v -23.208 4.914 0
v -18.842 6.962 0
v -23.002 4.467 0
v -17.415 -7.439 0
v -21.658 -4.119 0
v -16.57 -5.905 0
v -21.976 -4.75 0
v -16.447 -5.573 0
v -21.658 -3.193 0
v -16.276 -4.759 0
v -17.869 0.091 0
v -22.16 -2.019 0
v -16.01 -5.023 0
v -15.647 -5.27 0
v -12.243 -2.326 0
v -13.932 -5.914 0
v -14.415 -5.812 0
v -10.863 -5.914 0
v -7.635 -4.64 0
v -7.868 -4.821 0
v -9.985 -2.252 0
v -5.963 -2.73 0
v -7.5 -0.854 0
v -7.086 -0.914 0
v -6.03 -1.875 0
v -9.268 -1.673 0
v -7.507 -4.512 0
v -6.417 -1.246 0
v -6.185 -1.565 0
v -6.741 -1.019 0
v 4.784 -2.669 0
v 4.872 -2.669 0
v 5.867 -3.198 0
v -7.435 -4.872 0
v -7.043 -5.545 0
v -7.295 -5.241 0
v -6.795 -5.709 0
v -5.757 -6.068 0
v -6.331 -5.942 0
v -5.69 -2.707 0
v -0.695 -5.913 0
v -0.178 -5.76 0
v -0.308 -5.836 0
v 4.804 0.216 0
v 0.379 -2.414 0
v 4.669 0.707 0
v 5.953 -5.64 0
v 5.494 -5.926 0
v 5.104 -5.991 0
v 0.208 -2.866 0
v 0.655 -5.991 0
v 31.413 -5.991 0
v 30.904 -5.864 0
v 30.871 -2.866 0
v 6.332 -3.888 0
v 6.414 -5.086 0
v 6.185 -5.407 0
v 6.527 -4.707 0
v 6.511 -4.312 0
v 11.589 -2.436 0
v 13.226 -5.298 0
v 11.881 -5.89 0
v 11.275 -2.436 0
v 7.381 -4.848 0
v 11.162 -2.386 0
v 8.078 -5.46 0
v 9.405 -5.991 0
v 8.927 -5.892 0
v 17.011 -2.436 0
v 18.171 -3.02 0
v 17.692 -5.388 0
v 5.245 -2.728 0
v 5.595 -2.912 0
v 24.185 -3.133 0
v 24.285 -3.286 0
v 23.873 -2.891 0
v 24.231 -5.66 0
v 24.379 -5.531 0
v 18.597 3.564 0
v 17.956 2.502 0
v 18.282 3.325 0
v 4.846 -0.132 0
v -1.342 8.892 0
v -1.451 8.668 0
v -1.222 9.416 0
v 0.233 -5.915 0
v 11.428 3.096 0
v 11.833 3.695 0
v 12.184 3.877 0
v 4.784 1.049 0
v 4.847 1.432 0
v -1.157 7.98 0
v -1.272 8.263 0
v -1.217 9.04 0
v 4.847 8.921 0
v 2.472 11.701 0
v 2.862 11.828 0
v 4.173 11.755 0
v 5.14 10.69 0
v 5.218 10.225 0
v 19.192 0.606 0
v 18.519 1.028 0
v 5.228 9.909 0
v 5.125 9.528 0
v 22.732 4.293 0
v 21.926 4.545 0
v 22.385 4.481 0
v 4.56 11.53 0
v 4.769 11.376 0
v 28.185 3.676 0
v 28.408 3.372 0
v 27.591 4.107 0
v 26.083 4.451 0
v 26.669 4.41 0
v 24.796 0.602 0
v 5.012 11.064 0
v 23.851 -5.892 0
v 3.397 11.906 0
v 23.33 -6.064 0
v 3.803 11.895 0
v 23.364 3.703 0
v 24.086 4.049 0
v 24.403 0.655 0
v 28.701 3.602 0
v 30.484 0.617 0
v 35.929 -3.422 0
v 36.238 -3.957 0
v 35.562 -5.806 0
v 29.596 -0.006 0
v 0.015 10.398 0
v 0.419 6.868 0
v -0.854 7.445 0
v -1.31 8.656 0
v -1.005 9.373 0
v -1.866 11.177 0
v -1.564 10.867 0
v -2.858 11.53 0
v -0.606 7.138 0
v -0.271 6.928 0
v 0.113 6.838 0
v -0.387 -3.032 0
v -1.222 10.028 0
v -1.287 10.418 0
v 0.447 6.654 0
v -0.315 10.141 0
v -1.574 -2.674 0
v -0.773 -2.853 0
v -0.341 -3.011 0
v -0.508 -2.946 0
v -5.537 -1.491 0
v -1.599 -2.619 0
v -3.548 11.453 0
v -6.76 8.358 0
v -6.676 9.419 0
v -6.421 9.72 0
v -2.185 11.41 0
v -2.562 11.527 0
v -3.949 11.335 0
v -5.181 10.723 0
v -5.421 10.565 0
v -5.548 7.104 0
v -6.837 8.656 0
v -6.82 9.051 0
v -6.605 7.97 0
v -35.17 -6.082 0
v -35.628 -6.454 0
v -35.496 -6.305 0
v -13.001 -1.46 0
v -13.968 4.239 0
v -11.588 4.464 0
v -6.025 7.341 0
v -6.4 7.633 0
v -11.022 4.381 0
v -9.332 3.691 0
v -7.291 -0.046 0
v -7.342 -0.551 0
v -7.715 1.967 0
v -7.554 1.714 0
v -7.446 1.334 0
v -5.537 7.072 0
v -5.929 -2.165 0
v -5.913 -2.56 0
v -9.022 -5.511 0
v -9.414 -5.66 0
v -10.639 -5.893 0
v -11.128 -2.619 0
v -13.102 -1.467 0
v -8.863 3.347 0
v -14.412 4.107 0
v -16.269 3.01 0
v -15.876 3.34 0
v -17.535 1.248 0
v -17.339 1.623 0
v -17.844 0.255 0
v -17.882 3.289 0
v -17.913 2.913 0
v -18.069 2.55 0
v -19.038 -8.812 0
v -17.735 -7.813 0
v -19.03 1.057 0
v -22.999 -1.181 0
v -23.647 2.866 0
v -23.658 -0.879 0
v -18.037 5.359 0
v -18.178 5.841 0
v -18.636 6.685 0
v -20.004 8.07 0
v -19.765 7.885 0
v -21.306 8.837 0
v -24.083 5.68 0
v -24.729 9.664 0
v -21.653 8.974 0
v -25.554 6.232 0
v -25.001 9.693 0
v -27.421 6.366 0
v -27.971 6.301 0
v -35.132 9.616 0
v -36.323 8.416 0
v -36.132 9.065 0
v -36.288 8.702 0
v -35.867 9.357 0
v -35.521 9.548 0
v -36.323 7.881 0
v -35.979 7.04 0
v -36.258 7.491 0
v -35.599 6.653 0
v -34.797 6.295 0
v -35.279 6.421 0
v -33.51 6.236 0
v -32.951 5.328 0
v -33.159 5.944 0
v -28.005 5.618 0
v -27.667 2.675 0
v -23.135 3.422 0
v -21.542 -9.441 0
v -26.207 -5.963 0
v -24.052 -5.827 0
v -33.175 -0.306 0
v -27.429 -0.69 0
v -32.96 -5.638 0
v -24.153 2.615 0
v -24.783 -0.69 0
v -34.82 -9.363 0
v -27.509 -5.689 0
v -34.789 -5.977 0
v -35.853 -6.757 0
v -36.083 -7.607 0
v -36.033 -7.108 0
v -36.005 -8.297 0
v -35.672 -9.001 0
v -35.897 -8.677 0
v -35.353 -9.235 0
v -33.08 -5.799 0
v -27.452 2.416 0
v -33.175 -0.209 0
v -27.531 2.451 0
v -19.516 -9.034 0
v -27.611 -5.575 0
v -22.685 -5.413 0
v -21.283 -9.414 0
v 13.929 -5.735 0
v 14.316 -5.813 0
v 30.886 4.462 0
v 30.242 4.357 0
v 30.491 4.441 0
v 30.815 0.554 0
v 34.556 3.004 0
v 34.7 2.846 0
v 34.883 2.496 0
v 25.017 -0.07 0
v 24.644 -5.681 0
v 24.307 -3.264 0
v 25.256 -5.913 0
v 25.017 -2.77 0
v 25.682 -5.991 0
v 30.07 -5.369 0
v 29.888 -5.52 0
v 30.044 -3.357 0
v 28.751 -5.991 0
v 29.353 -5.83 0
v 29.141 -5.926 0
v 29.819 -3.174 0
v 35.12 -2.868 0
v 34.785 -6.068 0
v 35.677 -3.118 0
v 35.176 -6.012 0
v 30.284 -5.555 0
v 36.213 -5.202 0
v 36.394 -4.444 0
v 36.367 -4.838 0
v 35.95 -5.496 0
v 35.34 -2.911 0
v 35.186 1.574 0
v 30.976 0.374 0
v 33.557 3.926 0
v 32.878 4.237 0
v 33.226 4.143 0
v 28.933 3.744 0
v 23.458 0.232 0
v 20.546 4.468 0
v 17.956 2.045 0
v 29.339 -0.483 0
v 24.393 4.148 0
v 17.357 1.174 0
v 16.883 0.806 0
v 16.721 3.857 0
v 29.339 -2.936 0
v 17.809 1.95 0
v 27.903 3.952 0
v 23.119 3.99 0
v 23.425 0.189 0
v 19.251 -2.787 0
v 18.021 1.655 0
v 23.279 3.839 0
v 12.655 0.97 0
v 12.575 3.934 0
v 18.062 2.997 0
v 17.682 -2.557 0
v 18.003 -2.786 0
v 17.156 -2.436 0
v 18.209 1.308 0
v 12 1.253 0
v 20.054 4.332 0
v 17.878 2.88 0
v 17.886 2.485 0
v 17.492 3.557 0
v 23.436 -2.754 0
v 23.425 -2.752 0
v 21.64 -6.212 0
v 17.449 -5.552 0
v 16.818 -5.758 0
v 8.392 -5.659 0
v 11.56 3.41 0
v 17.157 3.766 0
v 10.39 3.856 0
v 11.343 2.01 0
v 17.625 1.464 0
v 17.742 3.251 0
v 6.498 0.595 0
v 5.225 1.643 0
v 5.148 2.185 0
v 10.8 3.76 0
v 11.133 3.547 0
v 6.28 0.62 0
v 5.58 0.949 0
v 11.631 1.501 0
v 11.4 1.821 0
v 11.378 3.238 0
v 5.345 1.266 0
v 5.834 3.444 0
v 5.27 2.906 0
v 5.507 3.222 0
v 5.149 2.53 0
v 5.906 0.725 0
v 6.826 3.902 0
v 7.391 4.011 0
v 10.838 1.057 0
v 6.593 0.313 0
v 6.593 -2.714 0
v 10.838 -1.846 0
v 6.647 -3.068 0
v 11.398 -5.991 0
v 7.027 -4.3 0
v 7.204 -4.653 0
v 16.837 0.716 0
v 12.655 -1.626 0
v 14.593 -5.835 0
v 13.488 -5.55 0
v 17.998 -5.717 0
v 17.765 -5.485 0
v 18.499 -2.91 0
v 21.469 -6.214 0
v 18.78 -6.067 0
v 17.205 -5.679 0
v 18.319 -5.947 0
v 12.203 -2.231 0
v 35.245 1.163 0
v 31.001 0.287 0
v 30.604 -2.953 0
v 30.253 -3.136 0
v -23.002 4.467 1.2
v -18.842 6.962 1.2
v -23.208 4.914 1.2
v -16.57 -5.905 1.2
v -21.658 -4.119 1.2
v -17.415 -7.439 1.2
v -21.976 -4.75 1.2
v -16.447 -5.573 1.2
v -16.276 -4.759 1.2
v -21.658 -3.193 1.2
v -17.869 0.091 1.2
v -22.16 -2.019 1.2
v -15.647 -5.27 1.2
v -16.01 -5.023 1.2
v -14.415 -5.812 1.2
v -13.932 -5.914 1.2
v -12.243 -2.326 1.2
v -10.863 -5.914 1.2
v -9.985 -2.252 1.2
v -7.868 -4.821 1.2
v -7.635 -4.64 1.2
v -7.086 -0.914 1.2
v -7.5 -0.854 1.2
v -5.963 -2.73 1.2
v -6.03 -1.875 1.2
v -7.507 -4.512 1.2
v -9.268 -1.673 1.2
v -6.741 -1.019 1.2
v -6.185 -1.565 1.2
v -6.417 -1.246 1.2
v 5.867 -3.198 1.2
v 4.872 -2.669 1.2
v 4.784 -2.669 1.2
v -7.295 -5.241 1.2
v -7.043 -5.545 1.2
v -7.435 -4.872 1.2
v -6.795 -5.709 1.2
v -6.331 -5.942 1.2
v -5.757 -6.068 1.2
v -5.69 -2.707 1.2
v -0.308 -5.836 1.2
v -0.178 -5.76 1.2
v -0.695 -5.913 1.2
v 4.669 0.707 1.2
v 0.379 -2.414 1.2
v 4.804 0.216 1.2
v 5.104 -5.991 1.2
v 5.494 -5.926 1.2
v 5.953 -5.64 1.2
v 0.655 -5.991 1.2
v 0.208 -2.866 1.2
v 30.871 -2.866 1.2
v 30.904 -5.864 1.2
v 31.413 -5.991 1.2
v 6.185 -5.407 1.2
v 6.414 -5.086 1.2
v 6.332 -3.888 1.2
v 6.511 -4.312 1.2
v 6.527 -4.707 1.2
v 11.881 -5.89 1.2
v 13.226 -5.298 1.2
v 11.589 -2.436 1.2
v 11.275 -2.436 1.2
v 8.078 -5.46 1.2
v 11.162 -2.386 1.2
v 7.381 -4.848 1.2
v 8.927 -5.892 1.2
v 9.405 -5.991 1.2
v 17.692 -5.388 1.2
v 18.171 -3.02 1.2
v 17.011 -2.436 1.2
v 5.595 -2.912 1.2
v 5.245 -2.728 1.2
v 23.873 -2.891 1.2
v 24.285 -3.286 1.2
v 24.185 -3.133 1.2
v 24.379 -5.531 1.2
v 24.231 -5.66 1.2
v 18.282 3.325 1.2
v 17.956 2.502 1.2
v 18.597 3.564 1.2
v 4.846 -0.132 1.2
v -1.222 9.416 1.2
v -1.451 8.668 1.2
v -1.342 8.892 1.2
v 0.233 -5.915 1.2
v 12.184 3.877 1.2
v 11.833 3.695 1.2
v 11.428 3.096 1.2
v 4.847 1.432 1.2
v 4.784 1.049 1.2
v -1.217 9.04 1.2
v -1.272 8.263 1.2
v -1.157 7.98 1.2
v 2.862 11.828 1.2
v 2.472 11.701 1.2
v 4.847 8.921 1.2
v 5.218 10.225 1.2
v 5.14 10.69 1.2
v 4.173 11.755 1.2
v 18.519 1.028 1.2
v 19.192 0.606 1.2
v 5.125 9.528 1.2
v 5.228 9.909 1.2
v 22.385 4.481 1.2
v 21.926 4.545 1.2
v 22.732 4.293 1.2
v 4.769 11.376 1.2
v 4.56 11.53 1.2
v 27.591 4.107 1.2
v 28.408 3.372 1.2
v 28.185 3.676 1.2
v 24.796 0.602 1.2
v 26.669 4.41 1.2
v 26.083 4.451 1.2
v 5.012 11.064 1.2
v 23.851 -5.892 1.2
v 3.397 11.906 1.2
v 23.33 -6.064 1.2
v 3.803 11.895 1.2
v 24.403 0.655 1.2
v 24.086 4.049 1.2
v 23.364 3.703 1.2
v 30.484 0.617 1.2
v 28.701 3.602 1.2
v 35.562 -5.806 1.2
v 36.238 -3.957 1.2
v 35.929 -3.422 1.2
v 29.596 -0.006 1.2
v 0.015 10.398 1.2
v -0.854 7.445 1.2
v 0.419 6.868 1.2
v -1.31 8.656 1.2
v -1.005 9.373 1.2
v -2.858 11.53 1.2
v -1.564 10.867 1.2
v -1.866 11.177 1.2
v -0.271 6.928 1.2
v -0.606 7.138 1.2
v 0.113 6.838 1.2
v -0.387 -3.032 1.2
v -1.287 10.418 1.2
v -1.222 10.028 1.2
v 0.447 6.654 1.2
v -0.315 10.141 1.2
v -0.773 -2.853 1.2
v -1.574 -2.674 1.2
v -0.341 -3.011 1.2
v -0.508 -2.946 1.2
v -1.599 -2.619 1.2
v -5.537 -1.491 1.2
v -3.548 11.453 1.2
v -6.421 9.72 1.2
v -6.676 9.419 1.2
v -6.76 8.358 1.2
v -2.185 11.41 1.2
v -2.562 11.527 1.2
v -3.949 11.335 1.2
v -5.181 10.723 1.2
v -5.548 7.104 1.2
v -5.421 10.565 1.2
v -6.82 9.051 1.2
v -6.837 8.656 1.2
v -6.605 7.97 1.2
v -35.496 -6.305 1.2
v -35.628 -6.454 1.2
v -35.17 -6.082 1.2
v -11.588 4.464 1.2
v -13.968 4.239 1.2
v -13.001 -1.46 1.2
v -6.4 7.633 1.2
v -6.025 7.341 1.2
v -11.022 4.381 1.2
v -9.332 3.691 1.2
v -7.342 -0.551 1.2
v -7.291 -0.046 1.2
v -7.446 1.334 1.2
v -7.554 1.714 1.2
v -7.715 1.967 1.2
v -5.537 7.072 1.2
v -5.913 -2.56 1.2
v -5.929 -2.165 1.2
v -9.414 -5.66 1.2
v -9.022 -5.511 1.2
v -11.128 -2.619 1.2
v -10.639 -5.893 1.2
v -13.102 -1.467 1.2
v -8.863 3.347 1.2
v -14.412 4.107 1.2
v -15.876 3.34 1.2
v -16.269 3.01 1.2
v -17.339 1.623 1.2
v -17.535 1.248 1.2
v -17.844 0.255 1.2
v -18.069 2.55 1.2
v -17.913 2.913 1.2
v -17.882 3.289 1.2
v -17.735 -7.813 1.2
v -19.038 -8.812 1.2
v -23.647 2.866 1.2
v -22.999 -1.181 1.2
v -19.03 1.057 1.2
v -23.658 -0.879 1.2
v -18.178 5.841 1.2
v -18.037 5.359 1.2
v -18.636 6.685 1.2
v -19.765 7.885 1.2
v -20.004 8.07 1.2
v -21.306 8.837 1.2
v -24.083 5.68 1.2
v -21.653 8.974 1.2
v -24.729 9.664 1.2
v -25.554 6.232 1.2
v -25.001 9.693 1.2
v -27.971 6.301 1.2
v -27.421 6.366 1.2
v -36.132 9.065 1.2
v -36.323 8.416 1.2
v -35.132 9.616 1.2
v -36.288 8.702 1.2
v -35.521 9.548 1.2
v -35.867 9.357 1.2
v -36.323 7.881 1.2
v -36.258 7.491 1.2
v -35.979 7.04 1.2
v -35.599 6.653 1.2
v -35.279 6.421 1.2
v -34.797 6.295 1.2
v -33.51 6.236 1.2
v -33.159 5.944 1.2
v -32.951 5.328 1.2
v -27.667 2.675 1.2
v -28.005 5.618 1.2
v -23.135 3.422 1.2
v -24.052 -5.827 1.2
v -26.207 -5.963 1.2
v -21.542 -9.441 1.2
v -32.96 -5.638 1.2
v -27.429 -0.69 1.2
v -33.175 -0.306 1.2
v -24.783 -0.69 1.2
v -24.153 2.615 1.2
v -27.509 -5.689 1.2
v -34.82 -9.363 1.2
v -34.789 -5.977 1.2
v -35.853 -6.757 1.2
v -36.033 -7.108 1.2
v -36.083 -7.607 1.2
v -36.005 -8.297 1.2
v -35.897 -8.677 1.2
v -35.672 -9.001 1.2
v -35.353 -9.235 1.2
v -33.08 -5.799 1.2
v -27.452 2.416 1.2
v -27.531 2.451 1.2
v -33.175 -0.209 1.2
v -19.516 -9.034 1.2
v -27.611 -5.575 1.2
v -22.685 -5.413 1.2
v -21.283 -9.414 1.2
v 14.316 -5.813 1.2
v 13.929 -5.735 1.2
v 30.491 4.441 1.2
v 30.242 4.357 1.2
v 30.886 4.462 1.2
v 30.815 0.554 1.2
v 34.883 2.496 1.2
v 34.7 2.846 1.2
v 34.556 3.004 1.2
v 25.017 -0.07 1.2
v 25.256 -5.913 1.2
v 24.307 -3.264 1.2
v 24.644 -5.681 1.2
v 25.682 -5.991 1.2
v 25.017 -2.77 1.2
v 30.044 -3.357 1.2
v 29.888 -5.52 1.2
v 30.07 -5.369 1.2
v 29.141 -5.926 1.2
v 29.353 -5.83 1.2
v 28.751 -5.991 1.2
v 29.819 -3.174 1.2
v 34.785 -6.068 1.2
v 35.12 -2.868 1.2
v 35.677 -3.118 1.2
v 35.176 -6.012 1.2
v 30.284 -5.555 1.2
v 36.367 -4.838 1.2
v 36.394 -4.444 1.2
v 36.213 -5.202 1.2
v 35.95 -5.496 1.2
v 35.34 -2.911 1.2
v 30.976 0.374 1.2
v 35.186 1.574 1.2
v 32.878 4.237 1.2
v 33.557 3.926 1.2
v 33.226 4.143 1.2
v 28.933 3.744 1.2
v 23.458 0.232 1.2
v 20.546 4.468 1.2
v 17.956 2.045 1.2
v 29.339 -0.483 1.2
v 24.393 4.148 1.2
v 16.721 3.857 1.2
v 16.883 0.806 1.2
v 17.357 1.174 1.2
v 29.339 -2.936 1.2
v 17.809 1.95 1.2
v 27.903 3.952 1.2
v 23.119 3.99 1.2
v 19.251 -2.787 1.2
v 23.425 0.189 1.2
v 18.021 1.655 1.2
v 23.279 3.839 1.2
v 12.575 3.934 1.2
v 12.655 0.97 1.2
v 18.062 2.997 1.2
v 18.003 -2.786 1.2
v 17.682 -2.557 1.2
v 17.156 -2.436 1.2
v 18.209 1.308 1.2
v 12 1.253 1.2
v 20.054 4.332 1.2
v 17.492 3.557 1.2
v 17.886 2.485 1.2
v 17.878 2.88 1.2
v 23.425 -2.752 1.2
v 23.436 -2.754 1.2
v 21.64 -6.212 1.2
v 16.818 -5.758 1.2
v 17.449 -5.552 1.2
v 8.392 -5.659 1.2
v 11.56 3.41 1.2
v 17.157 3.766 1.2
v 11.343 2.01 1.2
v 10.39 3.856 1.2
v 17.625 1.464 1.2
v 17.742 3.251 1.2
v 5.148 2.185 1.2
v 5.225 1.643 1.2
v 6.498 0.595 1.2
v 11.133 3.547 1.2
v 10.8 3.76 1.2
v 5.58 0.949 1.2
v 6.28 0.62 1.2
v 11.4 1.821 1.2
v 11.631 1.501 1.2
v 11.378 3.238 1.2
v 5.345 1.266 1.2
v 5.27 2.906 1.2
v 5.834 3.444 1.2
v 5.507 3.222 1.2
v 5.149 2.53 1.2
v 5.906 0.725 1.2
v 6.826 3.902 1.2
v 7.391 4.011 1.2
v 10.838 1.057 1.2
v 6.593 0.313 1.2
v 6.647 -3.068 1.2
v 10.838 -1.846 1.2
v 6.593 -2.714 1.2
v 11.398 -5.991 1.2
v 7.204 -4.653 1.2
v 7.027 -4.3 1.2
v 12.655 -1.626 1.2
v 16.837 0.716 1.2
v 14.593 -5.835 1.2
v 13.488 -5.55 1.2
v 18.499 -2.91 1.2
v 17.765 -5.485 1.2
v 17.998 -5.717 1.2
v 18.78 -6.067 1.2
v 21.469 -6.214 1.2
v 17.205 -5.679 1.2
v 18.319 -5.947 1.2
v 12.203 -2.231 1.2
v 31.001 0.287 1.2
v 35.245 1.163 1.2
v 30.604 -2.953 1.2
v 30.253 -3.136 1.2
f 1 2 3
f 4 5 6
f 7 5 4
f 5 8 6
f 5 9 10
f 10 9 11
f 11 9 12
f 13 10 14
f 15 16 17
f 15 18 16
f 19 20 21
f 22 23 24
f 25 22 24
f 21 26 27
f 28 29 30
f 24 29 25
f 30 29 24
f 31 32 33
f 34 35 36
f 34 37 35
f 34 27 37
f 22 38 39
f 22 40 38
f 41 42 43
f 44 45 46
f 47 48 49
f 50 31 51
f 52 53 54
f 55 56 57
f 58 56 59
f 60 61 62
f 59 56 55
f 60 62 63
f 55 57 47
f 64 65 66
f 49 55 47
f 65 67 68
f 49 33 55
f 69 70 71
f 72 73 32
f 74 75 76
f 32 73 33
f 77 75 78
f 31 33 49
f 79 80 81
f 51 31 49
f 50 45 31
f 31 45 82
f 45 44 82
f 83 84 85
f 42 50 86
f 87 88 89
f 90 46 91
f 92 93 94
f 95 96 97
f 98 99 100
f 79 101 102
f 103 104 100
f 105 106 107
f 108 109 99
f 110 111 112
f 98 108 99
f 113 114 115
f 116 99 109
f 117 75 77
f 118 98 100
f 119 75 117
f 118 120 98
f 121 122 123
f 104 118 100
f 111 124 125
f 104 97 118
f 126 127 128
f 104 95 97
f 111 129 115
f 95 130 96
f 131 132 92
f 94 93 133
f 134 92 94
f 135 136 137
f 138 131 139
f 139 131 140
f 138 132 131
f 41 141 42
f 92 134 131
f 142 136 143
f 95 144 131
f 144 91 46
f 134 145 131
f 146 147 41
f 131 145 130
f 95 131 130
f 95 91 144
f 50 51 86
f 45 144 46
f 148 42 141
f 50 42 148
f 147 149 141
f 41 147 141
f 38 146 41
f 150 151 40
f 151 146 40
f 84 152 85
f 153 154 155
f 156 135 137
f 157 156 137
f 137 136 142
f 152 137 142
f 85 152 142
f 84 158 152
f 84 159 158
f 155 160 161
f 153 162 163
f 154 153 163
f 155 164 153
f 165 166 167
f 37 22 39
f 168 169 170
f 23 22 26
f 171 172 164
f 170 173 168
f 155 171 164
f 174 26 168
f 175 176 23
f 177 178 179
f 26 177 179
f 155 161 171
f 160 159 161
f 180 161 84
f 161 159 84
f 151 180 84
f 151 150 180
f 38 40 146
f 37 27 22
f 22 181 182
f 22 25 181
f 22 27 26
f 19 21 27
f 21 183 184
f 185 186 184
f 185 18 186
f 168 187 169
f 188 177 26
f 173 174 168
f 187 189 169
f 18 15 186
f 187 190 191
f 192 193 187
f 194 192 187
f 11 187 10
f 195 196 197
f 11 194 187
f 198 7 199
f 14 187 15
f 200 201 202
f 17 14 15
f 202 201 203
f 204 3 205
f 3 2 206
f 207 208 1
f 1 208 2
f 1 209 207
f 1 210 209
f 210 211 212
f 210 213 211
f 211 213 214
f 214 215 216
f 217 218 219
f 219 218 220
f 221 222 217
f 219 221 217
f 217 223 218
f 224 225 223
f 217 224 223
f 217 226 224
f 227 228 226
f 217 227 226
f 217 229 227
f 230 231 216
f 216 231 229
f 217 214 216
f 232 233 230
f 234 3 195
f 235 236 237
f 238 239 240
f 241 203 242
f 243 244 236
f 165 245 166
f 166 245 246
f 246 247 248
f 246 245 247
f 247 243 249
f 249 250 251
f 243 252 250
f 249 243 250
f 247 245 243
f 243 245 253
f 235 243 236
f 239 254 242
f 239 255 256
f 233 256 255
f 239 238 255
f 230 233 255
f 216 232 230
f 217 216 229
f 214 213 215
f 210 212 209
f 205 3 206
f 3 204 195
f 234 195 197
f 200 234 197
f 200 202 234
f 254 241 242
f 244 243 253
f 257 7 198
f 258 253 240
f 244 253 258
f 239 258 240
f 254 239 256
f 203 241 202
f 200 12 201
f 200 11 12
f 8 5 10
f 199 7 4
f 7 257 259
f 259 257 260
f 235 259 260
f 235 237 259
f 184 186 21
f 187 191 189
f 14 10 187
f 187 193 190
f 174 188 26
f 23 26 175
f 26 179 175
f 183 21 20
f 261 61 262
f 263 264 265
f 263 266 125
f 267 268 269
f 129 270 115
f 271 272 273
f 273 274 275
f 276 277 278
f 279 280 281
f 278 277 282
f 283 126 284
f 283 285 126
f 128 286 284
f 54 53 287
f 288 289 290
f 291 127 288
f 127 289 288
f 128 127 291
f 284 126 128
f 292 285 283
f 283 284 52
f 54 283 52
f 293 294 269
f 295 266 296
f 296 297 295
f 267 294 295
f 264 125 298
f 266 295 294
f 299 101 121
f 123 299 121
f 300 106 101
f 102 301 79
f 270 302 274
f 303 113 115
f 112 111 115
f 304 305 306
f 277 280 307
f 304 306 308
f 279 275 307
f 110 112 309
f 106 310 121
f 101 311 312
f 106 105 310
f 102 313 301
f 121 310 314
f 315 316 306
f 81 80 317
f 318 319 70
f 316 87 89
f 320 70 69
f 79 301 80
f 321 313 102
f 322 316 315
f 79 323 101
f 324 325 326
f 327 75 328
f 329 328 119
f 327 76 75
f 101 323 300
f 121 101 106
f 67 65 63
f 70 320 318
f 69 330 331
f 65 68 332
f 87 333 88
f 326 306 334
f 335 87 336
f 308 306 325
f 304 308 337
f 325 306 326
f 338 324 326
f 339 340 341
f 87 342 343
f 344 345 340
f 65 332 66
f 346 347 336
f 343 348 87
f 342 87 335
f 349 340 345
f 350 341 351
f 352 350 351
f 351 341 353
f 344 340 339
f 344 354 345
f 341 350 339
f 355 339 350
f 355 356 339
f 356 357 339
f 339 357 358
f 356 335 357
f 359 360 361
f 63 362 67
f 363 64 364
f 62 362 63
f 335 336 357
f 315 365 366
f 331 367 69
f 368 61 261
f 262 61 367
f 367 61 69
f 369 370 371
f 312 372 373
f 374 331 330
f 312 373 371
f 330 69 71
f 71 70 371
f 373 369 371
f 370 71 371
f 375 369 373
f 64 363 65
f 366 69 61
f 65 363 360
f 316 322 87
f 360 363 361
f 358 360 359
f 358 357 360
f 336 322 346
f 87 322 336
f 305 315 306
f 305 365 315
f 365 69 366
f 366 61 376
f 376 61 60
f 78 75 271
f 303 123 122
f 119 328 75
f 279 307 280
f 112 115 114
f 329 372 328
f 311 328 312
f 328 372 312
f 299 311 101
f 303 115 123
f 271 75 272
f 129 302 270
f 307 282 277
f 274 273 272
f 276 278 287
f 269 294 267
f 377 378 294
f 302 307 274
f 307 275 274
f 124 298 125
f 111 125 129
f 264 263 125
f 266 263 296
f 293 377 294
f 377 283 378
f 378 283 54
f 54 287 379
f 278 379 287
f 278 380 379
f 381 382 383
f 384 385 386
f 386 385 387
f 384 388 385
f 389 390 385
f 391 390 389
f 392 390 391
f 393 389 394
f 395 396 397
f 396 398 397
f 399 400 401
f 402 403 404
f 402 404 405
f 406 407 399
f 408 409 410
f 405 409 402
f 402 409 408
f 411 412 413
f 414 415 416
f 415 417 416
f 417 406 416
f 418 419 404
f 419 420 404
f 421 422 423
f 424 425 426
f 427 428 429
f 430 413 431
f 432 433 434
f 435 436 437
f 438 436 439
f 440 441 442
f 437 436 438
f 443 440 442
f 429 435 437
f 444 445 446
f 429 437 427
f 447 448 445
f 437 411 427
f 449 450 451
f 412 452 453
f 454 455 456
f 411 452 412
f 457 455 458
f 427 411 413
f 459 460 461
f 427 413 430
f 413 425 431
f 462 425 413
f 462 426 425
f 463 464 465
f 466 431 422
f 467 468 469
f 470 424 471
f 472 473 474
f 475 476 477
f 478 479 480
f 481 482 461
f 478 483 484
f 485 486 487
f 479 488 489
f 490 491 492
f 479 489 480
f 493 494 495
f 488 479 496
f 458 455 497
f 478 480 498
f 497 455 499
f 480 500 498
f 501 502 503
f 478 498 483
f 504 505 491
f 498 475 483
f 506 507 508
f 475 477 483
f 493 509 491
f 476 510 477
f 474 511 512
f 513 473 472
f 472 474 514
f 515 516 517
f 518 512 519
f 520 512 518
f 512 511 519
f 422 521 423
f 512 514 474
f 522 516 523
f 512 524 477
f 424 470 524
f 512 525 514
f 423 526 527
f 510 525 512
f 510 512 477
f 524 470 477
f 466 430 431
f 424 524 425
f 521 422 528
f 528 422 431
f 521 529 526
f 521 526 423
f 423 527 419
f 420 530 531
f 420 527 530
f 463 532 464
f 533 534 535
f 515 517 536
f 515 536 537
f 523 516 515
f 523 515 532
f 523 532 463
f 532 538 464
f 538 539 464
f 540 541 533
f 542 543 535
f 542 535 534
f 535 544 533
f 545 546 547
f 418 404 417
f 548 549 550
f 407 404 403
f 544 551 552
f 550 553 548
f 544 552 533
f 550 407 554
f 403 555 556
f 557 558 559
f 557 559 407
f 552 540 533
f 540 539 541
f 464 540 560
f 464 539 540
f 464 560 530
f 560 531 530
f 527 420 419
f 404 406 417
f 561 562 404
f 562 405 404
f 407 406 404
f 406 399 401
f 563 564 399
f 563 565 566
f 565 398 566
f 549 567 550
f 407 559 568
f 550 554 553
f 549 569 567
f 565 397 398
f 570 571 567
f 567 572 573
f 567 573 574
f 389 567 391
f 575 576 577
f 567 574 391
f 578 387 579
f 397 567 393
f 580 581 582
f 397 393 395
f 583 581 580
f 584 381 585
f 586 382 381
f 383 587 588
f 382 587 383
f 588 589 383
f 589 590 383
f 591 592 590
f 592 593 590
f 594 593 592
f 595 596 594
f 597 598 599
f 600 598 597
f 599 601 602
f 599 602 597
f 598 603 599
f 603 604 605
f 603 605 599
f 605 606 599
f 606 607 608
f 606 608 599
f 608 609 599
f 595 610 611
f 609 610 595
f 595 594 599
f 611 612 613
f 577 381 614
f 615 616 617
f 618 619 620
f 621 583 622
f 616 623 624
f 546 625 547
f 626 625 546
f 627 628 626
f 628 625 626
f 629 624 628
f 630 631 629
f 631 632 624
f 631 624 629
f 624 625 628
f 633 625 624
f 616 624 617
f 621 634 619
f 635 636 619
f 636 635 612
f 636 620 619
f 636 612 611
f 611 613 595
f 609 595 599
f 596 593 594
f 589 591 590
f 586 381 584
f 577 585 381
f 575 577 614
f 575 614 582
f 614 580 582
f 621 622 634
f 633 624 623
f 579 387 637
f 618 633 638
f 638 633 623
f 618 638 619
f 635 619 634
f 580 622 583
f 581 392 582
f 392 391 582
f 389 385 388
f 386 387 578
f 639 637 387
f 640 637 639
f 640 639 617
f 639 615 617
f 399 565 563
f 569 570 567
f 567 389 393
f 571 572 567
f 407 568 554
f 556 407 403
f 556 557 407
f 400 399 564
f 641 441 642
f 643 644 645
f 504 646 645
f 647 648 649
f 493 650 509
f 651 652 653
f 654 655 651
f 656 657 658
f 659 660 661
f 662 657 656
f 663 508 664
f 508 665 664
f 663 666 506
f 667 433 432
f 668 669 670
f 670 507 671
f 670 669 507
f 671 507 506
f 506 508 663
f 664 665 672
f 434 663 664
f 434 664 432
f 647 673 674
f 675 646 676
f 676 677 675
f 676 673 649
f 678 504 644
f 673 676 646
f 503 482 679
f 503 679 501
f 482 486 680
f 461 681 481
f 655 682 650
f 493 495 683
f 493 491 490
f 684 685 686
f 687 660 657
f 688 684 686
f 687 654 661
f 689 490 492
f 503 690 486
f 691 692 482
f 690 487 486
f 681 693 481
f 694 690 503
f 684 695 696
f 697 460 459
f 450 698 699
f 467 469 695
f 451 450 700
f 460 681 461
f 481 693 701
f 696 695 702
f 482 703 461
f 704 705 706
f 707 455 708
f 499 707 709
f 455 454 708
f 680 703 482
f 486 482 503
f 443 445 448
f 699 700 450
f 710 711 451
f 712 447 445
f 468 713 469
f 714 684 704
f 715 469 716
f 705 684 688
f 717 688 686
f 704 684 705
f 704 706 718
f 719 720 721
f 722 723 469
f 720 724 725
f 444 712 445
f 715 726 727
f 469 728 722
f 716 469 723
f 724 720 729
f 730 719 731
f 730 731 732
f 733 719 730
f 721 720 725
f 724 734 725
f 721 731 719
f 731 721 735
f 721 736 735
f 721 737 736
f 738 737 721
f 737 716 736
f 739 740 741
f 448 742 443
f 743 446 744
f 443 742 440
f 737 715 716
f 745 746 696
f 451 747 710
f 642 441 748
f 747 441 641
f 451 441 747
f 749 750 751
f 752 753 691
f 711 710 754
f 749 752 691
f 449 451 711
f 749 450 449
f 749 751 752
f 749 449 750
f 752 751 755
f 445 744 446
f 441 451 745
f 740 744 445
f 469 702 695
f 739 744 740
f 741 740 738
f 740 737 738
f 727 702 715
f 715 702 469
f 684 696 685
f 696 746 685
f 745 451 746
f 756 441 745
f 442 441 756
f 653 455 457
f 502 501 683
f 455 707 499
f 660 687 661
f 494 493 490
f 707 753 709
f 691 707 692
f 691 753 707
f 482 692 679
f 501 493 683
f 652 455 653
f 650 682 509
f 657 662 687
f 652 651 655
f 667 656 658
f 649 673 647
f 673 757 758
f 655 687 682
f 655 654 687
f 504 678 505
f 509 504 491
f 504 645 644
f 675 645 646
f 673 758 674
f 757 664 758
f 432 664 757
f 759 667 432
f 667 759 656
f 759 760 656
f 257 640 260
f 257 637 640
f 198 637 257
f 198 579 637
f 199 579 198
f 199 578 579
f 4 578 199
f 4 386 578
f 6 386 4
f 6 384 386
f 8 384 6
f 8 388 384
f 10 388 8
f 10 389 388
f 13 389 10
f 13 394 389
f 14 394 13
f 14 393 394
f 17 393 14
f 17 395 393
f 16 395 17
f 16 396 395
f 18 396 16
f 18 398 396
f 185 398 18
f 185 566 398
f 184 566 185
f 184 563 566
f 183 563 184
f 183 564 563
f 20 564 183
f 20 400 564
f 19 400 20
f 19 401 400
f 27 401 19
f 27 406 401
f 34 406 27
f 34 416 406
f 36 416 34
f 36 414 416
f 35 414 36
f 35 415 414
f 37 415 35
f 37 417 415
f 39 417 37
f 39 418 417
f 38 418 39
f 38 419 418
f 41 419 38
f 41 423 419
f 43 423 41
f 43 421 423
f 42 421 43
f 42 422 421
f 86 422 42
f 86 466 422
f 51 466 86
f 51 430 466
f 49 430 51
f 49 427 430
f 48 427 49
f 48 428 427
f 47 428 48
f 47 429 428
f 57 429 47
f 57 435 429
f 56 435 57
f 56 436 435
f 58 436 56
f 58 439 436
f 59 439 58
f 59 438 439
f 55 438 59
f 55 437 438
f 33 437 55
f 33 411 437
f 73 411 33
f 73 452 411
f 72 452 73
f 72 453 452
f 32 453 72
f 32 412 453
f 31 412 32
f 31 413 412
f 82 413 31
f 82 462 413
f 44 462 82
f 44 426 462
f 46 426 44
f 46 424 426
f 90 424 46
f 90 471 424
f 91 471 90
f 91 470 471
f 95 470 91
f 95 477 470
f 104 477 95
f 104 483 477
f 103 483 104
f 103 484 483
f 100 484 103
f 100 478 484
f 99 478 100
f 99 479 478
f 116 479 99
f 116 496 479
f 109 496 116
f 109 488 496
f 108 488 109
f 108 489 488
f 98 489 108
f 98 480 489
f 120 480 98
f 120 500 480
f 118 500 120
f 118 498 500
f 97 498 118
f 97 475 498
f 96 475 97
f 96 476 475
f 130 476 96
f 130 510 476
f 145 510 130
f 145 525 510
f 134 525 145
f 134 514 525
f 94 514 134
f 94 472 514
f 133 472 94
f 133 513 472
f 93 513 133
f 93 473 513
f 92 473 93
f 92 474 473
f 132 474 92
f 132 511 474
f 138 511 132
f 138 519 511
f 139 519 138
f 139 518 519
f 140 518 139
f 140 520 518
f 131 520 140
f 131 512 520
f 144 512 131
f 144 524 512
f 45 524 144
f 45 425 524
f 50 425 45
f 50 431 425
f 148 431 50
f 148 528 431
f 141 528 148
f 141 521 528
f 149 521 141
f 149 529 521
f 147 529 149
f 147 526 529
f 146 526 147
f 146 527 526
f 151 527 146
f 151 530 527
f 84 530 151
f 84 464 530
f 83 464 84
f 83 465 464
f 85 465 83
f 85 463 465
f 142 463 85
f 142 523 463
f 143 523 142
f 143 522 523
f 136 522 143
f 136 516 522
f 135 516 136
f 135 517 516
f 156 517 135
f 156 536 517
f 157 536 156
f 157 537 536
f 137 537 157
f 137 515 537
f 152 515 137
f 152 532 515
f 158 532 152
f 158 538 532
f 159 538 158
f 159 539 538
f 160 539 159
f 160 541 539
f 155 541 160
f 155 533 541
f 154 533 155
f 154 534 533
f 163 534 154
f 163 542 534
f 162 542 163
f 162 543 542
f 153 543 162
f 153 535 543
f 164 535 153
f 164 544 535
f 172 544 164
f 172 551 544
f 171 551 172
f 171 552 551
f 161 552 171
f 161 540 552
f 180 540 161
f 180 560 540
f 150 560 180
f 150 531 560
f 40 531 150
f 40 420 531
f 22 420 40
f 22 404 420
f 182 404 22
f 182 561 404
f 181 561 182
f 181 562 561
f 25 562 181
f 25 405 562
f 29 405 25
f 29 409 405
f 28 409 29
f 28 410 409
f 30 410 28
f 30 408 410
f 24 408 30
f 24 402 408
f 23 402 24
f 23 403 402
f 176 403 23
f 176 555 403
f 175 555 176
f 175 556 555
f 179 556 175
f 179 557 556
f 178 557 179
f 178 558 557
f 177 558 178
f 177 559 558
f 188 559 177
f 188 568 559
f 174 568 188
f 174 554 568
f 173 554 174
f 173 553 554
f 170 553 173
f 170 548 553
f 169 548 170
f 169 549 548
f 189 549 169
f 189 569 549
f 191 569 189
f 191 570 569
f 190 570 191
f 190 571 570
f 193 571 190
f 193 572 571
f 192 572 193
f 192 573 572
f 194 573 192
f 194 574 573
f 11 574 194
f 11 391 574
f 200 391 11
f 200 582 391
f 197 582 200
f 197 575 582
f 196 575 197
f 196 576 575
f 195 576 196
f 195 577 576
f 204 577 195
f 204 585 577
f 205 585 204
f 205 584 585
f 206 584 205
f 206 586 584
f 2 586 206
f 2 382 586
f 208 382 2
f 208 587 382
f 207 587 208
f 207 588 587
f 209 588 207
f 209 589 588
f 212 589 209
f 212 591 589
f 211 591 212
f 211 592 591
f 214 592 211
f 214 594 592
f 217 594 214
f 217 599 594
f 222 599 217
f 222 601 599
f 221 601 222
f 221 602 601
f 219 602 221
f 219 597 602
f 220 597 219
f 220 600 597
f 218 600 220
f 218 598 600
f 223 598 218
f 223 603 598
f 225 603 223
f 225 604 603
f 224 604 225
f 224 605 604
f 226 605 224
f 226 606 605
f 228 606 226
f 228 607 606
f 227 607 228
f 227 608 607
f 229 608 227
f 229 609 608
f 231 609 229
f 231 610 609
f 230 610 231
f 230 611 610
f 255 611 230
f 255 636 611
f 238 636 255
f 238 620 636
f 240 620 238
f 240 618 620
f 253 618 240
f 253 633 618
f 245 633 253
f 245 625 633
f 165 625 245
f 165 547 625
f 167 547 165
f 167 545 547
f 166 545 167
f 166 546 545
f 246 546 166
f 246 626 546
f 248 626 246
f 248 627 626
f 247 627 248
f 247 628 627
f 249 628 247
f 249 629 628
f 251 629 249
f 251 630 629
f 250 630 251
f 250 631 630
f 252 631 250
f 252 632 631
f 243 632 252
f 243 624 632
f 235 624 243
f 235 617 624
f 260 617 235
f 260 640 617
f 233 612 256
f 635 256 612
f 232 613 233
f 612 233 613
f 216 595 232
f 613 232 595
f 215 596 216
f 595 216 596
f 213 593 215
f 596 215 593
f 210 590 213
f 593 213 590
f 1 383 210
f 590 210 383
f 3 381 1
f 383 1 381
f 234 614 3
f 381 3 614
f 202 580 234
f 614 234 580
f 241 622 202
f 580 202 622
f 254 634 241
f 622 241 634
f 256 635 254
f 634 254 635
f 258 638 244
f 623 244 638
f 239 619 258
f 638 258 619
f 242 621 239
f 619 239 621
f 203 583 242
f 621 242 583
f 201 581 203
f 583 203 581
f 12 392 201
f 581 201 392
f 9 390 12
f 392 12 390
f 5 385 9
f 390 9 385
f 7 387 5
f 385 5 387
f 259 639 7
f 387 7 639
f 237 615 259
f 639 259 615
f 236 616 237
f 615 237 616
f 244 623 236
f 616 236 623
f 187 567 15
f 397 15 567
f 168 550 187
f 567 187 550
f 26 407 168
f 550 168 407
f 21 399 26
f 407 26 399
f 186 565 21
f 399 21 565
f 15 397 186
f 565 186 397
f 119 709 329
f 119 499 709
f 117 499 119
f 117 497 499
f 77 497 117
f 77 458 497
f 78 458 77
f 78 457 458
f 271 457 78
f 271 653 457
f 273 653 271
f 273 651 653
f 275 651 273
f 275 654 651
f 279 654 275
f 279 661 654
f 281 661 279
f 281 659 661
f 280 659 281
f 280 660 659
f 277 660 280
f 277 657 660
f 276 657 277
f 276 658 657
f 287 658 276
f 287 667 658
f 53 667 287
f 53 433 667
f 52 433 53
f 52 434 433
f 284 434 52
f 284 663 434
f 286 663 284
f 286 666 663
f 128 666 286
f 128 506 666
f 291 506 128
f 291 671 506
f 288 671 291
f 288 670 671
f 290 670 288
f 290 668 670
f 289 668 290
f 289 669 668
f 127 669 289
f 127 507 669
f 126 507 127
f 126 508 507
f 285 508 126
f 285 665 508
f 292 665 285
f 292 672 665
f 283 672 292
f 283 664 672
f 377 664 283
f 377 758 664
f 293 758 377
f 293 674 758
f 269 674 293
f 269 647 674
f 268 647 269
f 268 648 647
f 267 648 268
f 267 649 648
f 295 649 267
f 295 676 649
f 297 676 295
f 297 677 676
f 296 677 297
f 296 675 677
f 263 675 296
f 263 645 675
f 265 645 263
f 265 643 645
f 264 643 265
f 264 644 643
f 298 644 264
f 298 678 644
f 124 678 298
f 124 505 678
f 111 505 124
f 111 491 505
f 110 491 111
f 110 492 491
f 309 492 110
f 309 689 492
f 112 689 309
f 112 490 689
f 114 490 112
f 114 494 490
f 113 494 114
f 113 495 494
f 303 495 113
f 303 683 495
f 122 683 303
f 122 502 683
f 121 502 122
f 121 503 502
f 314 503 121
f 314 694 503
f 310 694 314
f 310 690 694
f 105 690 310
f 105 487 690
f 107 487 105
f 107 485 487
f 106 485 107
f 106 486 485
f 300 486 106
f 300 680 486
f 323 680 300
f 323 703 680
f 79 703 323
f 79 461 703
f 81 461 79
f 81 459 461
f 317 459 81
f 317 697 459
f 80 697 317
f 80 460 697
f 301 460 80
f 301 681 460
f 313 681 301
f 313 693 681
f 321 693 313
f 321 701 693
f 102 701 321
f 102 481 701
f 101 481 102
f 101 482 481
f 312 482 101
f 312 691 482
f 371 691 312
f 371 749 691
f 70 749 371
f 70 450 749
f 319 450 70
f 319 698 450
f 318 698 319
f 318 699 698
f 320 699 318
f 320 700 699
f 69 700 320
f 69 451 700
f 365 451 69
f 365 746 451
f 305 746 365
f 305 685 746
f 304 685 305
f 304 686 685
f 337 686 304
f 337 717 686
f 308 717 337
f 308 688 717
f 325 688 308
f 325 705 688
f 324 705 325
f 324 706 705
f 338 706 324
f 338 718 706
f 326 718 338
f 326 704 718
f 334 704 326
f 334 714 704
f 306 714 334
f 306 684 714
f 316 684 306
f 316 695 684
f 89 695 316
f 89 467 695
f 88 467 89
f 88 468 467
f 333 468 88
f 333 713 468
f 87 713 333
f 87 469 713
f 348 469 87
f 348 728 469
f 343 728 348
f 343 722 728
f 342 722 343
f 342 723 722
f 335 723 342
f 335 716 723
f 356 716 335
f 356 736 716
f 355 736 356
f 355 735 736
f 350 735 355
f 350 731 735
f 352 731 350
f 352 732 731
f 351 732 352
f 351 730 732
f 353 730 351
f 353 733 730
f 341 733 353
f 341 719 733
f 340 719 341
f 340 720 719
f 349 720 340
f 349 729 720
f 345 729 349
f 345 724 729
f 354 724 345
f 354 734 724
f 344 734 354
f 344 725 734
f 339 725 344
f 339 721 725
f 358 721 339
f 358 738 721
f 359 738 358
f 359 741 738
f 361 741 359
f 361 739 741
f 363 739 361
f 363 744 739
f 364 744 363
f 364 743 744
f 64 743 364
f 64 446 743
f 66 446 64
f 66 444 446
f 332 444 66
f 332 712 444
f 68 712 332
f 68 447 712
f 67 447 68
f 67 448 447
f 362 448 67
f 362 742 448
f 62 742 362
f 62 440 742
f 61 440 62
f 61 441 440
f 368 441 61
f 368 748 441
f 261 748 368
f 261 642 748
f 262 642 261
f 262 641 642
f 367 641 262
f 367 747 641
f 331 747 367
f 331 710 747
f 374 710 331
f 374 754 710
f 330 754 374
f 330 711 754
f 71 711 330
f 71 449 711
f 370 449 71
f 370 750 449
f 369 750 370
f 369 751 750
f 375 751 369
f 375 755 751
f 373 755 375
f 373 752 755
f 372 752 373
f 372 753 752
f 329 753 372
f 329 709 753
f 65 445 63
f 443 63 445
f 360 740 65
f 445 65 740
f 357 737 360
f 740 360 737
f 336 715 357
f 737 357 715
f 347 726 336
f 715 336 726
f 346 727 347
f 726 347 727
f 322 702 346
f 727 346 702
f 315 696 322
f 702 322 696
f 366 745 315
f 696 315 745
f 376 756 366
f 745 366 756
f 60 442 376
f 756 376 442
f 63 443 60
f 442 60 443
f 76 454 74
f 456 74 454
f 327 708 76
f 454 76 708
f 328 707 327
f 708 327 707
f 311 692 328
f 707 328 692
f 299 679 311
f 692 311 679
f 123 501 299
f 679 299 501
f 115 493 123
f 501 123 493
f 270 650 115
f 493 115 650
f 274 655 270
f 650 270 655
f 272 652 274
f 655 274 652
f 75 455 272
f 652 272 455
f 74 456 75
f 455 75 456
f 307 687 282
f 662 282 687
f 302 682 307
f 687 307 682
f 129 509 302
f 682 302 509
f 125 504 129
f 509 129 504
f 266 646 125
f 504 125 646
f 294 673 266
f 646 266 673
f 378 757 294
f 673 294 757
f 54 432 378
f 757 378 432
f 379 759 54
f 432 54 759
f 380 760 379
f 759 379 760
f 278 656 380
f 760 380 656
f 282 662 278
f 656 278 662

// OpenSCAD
// file: bellum_text_traced.scad
// bellum_text_traced.scad
// "Bellum" lettering traced from the source logo image with
// OpenCV (4x cubic upscale, threshold, morphological cleanup,
// approxPolyDP 2px). Coordinates are centered, Y-up, and
// normalized to 100 units of total width.
// Regenerate with scratchpad/trace2_emit.py if retuning.

module bellum_traced_2d() {
    polygon(points=[[-49.89,10.25],[-49.89,9.49],[-49.35,8.94],[-46.95,8.83],[-45.64,7.74],[-45.09,6.11],[-45.42,-2.07],[-45.09,-10.25],[-46.07,-11.56],[-49.24,-11.89],[-49.56,-12.32],[-49.45,-13.30],[-30.59,-13.41],[-28.08,-12.87],[-26.23,-11.45],[-25.03,-9.27],[-24.48,-6.65],[-25.03,-4.80],[-26.01,-3.27],[-29.28,-0.55],[-27.10,2.84],[-27.32,5.78],[-27.97,6.98],[-29.28,8.29],[-31.13,9.38],[-35.50,10.36],[-40.62,-1.42],[-39.97,-0.98],[-35.06,-0.98],[-33.10,-1.31],[-31.68,-1.96],[-30.04,-3.60],[-29.06,-5.89],[-29.06,-7.96],[-29.83,-9.49],[-31.35,-10.91],[-33.86,-11.67],[-37.35,-11.89],[-39.97,-11.34],[-40.95,-10.25],[-41.38,8.40],[-40.84,8.83],[-38.99,9.05],[-35.93,8.83],[-33.32,7.85],[-31.57,6.32],[-30.92,4.91],[-31.24,2.40],[-32.55,0.98],[-33.86,0.33],[-39.31,0.00],[-40.29,0.44],[-40.95,1.53],[-41.49,6.22]], paths=[[0, 1, 2, 3, 4, 5, 6, 7, 8, 9, 10, 11, 12, 13, 14, 15, 16, 17, 18, 19, 20, 21, 22, 23, 24, 25], [26, 27, 28, 29, 30, 31, 32, 33, 34, 35, 36, 37, 38, 39], [40, 41, 42, 43, 44, 45, 46, 47, 48, 49, 50, 51, 52, 53]]);
    polygon(points=[[-21.76,1.53],[-23.28,-0.44],[-23.72,-1.85],[-23.72,-3.82],[-22.96,-6.22],[-21.54,-7.63],[-19.79,-8.40],[-15.43,-8.40],[-13.69,-8.07],[-12.05,-7.09],[-10.09,-5.13],[-10.31,-4.69],[-11.07,-4.58],[-13.36,-6.43],[-15.76,-7.20],[-18.27,-6.54],[-20.34,-4.47],[-20.77,-3.49],[-20.67,-2.62],[-20.01,-2.18],[-18.48,-2.07],[-12.70,-2.40],[-12.05,-1.96],[-12.27,0.00],[-13.90,1.96],[-16.30,2.94],[-19.68,2.62],[-20.34,-0.22],[-19.47,0.98],[-17.61,1.96],[-15.98,1.53],[-14.78,0.00],[-14.99,-0.76],[-15.98,-0.98],[-20.01,-0.98]], paths=[[0, 1, 2, 3, 4, 5, 6, 7, 8, 9, 10, 11, 12, 13, 14, 15, 16, 17, 18, 19, 20, 21, 22, 23, 24, 25, 26], [27, 28, 29, 30, 31, 32, 33, 34]]);
    polygon(points=[[-3.87,12.98],[-4.85,12.87],[-6.60,12.00],[-8.02,10.80],[-7.80,10.25],[-6.49,9.60],[-6.16,8.62],[-6.16,-3.93],[-6.49,-6.54],[-7.36,-7.20],[-8.67,-7.31],[-9.00,-7.74],[-8.89,-8.29],[-8.23,-8.62],[-1.04,-8.40],[-1.04,-7.85],[-1.47,-7.42],[-3.44,-6.98],[-3.98,-5.78],[-3.76,11.01],[-3.44,11.67],[-3.44,12.54]], paths=[[0, 1, 2, 3, 4, 5, 6, 7, 8, 9, 10, 11, 12, 13, 14, 15, 16, 17, 18, 19, 20, 21]]);
    polygon(points=[[5.07,13.52],[4.31,13.41],[0.82,11.56],[-0.16,10.47],[0.27,9.71],[1.47,10.03],[2.13,9.49],[2.34,7.85],[2.24,-5.45],[1.58,-7.20],[-0.05,-7.63],[0.05,-8.18],[0.93,-8.51],[7.25,-8.51],[7.58,-8.18],[6.92,-7.20],[6.05,-7.20],[5.07,-6.32],[5.18,-1.85],[4.85,-0.65],[5.18,0.33],[5.18,11.34],[5.73,12.54],[5.62,13.20]], paths=[[0, 1, 2, 3, 4, 5, 6, 7, 8, 9, 10, 11, 12, 13, 14, 15, 16, 17, 18, 19, 20, 21, 22, 23]]);
    polygon(points=[[9.00,1.64],[9.11,0.87],[10.09,0.76],[10.74,0.00],[11.07,-0.98],[11.07,-5.56],[11.61,-7.31],[12.60,-8.18],[13.36,-8.51],[16.19,-8.51],[18.92,-7.31],[19.47,-7.31],[20.12,-8.18],[20.67,-8.29],[23.83,-8.18],[24.48,-7.74],[24.37,-6.87],[23.17,-6.87],[22.52,-6.32],[22.19,-0.33],[22.63,0.55],[23.61,1.31],[23.72,2.07],[17.83,2.18],[17.72,1.64],[19.25,0.98],[19.68,0.22],[19.68,-4.58],[18.38,-6.32],[16.74,-6.87],[15.65,-6.87],[14.67,-6.43],[13.69,-4.80],[13.69,0.22],[14.67,2.07],[10.41,2.29]], paths=[[0, 1, 2, 3, 4, 5, 6, 7, 8, 9, 10, 11, 12, 13, 14, 15, 16, 17, 18, 19, 20, 21, 22, 23, 24, 25, 26, 27, 28, 29, 30, 31, 32, 33, 34, 35]]);
    polygon(points=[[27.21,1.85],[27.21,1.20],[28.95,0.11],[29.06,-6.22],[28.52,-7.20],[26.55,-7.52],[26.44,-8.29],[26.77,-8.62],[30.59,-8.83],[32.99,-8.62],[33.53,-8.29],[33.10,-7.31],[32.12,-7.20],[31.57,-6.65],[31.57,-0.87],[32.22,0.00],[34.41,0.98],[36.04,0.76],[36.70,0.11],[37.24,-1.53],[37.24,-6.00],[36.91,-6.76],[35.50,-7.74],[35.61,-8.18],[36.48,-8.51],[40.84,-8.51],[41.60,-8.07],[41.60,-7.74],[40.51,-7.20],[39.97,-6.43],[39.97,-1.96],[40.73,-0.55],[42.91,0.98],[44.66,0.65],[45.53,-0.33],[45.75,-1.09],[45.53,-6.43],[44.98,-7.20],[44.00,-7.52],[43.78,-8.07],[44.66,-8.51],[49.45,-8.62],[50.00,-8.18],[49.56,-7.42],[48.80,-7.42],[48.15,-6.76],[48.36,0.00],[47.93,1.31],[46.51,2.62],[43.68,2.94],[41.82,2.07],[40.29,0.87],[39.86,0.87],[38.66,2.51],[37.35,2.94],[34.95,2.51],[32.22,1.20],[31.46,1.42],[31.79,2.62],[31.24,3.05],[29.28,2.94]], paths=[[0, 1, 2, 3, 4, 5, 6, 7, 8, 9, 10, 11, 12, 13, 14, 15, 16, 17, 18, 19, 20, 21, 22, 23, 24, 25, 26, 27, 28, 29, 30, 31, 32, 33, 34, 35, 36, 37, 38, 39, 40, 41, 42, 43, 44, 45, 46, 47, 48, 49, 50, 51, 52, 53, 54, 55, 56, 57, 58, 59, 60]]);
}

bellum_traced_2d();
// file: bellum_badge_004.scad
// bellum_badge_004.scad
// v004: corrected again after a closer look at the photo. The design is a
//   WHITE circle with a 5x5 checkerboard rotated 45 degrees on top: black
//   corner tiles, black center tile, thin white grout, and the diamond's
//   four corners slightly clipped by the circle rim. (v003's full-circle
//   checkerboard misread glare on the button photo as extra tiles.)
//
// Printable parts (print in the named color, glue together):
//   white_body()         white - 3 mm disc + 2 mm top layer with square
//                        pockets; the top layer IS the white circle, white
//                        tiles, and grout, all one solid piece
//   black_tiles()        black - 13 drop-in tiles (4 rim-clipped), flush
//                        with the white top when seated
//   text_plate_black()   black - outline plate behind the letters
//   text_letters_white() white - "Bellum" letters (6 pieces), glue on plate
//
// Everything scales from badge_d; thicknesses and clearance are absolute.
// v002/v003 history: lettering traced from the photo (bellum_text_traced).

$fa = 2;
$fs = 0.4;

// ---- scale ----
badge_d = 80;       // badge diameter: THE scale knob
n       = 5;        // checker tiles per row (odd -> black corners + center)

// ---- thicknesses (absolute mm, independent of badge_d) ----
t_base = 3;         // white disc under the pockets
t_top  = 2;         // pocketed top layer; tiles sit flush (total = 5)
t_text = 1.2;       // each text layer (plate and letters)
clr    = 0.15;      // per-side XY clearance for the drop-in tiles

// ---- proportions (fractions of badge_d, measured from the photo) ----
diag_frac = 1.09;                       // diamond diagonal vs diameter:
                                        // the four corners clip the rim
grout_w   = max(0.008 * badge_d, 0.8);  // white gap between tiles
text_w    = 0.88 * badge_d;             // width of "Bellum"
text_dy   = 0.015 * badge_d;            // text sits a touch above center
outline_w = max(0.015 * badge_d, 1.2);  // black outline around the letters

use <bellum_text_traced.scad>  // lettering traced from the logo photo

// ---- derived ----
R     = badge_d / 2;
sq_f  = diag_frac * badge_d / sqrt(2);  // checker field side
tile  = (sq_f - (n - 1) * grout_w) / n; // tile size
pitch = tile + grout_w;

eps = 0.01;

// ---------------- 2D shapes ----------------

// black tile positions: (i+j) even -> corners and center are black
module black_squares_2d(shrink = 0) {
    rotate(45)
        for (i = [0 : n - 1], j = [0 : n - 1])
            if ((i + j) % 2 == 0)
                translate([(i - (n - 1) / 2) * pitch,
                           (j - (n - 1) / 2) * pitch])
                    square(tile - 2 * shrink, center = true);
}

// traced lettering is normalized to 100 units wide, centered
module text_2d() {
    translate([0, text_dy]) scale(text_w / 100) bellum_traced_2d();
}

// ---------------- printable parts (each flat on Z=0) ----------------

// disc + pocketed top layer, one white piece
module white_body() {
    linear_extrude(t_base) circle(R);
    translate([0, 0, t_base])
        linear_extrude(t_top) difference() {
            circle(R);
            black_squares_2d();  // pockets; rim clips the 4 corner ones
        }
}

// drop-in tiles, rim-clipped ones trimmed slightly inside the disc edge
module black_tiles() {
    intersection() {
        linear_extrude(t_top) black_squares_2d(clr);
        cylinder(h = t_top + eps, r = R - 0.3);
    }
}

module text_plate_black() {
    linear_extrude(t_text) offset(r = outline_w) text_2d();
}

module text_letters_white() {
    linear_extrude(t_text) text_2d();
}

// ---------------- assembled preview ----------------

module assembly() {
    color("white") white_body();
    color([0.15, 0.15, 0.15]) translate([0, 0, t_base]) black_tiles();
    color([0.15, 0.15, 0.15]) translate([0, 0, t_base + t_top])
        text_plate_black();
    color("white") translate([0, 0, t_base + t_top + t_text])
        text_letters_white();
}

assembly();
// main file
// bellum_badge_004_text_black.scad - print in BLACK
// Outline plate behind the letters. Glue onto the checkerboard.
use <bellum_badge_004.scad>
text_plate_black();
